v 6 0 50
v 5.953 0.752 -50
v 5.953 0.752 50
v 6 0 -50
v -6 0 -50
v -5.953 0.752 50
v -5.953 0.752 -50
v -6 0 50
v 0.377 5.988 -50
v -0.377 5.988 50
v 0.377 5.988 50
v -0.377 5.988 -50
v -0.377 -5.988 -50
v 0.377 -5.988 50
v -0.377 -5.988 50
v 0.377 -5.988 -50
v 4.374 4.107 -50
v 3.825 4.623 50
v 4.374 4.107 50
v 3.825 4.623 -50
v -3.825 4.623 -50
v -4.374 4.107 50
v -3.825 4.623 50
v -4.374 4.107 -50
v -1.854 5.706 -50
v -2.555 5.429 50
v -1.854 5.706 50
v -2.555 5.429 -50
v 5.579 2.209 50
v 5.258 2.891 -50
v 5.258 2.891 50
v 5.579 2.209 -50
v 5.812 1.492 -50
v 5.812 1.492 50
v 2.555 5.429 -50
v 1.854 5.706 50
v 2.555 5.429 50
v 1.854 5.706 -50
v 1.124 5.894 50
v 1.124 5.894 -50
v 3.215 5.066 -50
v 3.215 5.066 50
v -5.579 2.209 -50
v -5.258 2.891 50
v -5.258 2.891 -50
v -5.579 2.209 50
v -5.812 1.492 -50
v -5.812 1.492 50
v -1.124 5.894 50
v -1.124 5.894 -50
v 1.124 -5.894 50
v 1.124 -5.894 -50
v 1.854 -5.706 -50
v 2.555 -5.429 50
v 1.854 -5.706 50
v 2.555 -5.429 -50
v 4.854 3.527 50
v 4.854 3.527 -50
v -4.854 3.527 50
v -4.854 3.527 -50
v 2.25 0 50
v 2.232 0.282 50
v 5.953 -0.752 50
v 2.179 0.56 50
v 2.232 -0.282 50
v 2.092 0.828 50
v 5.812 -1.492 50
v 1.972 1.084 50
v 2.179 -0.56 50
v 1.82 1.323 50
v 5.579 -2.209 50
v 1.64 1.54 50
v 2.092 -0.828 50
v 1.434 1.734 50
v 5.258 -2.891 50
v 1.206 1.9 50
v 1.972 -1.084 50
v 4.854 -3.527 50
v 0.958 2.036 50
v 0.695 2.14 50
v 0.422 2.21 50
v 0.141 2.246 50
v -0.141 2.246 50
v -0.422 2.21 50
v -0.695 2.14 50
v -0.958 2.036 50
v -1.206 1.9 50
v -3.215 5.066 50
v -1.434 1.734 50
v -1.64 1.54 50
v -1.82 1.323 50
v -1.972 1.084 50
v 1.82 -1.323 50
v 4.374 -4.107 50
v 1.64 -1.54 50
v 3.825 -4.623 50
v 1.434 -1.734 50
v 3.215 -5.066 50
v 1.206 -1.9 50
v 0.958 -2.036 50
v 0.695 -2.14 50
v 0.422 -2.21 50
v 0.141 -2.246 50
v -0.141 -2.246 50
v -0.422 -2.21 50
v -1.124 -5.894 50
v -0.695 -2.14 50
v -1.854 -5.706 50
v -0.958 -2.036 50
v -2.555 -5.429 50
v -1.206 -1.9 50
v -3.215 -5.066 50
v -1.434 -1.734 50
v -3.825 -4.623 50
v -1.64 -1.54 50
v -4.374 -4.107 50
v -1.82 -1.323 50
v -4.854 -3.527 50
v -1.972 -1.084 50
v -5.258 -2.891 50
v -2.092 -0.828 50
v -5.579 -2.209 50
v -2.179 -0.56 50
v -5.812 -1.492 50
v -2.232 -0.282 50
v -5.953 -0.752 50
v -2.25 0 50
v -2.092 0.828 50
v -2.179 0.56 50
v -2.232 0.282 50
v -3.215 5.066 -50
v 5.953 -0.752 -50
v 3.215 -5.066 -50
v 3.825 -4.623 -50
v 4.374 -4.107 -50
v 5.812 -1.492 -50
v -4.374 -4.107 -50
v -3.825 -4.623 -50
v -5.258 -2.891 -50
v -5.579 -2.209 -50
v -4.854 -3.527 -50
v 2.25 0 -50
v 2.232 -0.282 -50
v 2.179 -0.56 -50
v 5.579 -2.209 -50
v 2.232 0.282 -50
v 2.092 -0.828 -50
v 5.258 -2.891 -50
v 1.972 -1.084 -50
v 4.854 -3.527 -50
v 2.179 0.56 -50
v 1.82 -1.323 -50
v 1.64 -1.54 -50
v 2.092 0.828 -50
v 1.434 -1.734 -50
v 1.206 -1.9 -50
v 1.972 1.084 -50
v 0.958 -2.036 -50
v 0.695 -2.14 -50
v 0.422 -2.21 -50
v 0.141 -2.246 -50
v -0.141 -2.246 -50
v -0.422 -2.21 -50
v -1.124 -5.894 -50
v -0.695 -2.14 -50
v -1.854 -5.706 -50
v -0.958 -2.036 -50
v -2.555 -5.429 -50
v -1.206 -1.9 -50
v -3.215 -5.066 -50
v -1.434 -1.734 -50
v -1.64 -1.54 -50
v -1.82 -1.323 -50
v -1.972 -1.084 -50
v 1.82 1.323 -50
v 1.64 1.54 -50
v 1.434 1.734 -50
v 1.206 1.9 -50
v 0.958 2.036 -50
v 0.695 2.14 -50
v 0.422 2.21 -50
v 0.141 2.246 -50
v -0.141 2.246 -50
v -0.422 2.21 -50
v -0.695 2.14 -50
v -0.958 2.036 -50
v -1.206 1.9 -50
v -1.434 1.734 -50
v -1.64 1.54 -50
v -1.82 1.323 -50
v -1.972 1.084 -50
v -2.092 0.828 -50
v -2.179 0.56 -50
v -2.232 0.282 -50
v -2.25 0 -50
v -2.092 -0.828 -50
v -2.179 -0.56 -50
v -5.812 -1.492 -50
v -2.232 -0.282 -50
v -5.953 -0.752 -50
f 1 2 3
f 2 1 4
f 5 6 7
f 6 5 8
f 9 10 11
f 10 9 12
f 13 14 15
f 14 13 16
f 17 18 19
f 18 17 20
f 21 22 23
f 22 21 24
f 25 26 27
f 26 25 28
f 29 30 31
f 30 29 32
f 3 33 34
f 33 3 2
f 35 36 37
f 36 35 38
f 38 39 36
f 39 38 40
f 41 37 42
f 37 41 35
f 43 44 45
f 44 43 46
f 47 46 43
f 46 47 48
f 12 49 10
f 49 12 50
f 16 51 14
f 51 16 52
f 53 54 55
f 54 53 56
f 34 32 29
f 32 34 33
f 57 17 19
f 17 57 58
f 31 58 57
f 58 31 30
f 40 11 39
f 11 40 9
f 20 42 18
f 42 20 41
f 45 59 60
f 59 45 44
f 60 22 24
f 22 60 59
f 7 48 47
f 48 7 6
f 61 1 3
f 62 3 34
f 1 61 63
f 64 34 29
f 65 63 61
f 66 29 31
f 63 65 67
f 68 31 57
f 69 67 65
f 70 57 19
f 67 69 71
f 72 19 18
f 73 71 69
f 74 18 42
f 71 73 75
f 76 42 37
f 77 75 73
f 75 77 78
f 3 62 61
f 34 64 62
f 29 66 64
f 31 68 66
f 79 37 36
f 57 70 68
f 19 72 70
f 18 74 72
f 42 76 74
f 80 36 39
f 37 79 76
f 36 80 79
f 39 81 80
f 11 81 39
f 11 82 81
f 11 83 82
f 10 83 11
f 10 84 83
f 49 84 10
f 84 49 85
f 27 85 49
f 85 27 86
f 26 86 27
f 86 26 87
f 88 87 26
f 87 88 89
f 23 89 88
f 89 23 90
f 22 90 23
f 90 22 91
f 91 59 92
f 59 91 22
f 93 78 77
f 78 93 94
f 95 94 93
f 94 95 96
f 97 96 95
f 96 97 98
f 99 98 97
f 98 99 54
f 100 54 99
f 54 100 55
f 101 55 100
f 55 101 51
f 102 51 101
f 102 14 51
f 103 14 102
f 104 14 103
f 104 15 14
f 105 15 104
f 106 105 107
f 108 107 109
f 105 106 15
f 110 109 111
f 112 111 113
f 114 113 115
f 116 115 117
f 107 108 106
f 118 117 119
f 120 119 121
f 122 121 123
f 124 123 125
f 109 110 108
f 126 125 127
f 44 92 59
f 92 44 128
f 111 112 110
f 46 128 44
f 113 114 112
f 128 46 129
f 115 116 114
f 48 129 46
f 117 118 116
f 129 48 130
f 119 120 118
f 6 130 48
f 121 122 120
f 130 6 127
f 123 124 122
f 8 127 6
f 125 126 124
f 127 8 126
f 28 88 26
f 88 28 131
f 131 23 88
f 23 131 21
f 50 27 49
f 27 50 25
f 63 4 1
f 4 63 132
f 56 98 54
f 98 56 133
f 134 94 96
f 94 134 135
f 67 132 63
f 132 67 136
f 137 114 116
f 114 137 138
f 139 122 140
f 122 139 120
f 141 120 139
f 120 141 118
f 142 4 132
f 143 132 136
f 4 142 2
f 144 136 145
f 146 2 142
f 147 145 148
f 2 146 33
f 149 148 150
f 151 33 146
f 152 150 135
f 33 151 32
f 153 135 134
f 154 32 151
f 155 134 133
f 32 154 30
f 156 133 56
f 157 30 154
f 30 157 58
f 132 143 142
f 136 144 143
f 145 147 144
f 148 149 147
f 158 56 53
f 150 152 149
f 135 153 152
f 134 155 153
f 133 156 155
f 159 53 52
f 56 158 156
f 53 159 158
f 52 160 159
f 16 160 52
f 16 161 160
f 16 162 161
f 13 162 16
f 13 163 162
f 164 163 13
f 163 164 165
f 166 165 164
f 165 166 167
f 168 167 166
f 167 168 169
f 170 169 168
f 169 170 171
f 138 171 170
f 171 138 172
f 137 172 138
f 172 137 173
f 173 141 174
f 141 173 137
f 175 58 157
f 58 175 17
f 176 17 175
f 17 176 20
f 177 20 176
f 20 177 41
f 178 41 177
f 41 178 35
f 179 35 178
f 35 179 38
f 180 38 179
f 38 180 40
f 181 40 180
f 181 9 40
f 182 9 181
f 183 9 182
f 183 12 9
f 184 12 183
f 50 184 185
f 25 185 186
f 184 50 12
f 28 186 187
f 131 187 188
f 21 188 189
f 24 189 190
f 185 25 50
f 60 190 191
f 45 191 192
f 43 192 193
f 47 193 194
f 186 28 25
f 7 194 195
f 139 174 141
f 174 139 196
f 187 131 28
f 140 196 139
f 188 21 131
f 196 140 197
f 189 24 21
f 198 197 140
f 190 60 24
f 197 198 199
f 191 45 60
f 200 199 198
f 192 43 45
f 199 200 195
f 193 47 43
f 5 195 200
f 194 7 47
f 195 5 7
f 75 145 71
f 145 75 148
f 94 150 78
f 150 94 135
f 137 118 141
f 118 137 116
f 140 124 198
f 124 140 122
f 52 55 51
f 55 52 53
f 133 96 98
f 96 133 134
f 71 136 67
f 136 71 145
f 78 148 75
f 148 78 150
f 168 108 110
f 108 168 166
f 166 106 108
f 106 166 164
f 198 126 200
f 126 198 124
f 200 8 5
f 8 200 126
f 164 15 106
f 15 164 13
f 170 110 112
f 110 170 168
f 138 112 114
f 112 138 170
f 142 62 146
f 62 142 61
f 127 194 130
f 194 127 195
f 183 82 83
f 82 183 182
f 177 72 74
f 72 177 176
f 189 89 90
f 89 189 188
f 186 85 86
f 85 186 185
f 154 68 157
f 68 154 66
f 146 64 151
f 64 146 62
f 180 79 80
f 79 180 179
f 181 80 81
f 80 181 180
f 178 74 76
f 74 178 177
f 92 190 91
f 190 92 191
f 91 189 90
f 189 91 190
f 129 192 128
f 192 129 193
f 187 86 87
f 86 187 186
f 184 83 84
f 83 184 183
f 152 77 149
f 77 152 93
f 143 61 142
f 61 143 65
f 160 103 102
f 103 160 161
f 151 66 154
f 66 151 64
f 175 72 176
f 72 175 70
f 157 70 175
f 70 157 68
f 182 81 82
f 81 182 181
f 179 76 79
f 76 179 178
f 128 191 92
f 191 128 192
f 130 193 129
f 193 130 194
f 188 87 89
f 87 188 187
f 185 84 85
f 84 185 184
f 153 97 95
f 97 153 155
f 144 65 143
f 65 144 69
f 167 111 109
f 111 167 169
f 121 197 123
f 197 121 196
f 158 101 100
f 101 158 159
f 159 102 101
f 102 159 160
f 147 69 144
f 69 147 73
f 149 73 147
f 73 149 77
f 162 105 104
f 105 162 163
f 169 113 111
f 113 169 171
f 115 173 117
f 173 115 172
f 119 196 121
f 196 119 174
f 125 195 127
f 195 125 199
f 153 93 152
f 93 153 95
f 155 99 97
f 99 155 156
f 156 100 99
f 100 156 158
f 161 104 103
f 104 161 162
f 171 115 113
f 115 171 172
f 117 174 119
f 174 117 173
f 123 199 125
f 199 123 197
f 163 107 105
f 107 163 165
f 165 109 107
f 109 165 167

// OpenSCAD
$fn = 50;


difference() {
	union() {
		translate(v = [0, 0, -50.0000000000]) {
			cylinder(h = 100, r = 6.0000000000);
		}
	}
	union() {
		translate(v = [0, 0, -100.0000000000]) {
			cylinder(h = 200, r = 2.2500000000);
		}
	}
}
